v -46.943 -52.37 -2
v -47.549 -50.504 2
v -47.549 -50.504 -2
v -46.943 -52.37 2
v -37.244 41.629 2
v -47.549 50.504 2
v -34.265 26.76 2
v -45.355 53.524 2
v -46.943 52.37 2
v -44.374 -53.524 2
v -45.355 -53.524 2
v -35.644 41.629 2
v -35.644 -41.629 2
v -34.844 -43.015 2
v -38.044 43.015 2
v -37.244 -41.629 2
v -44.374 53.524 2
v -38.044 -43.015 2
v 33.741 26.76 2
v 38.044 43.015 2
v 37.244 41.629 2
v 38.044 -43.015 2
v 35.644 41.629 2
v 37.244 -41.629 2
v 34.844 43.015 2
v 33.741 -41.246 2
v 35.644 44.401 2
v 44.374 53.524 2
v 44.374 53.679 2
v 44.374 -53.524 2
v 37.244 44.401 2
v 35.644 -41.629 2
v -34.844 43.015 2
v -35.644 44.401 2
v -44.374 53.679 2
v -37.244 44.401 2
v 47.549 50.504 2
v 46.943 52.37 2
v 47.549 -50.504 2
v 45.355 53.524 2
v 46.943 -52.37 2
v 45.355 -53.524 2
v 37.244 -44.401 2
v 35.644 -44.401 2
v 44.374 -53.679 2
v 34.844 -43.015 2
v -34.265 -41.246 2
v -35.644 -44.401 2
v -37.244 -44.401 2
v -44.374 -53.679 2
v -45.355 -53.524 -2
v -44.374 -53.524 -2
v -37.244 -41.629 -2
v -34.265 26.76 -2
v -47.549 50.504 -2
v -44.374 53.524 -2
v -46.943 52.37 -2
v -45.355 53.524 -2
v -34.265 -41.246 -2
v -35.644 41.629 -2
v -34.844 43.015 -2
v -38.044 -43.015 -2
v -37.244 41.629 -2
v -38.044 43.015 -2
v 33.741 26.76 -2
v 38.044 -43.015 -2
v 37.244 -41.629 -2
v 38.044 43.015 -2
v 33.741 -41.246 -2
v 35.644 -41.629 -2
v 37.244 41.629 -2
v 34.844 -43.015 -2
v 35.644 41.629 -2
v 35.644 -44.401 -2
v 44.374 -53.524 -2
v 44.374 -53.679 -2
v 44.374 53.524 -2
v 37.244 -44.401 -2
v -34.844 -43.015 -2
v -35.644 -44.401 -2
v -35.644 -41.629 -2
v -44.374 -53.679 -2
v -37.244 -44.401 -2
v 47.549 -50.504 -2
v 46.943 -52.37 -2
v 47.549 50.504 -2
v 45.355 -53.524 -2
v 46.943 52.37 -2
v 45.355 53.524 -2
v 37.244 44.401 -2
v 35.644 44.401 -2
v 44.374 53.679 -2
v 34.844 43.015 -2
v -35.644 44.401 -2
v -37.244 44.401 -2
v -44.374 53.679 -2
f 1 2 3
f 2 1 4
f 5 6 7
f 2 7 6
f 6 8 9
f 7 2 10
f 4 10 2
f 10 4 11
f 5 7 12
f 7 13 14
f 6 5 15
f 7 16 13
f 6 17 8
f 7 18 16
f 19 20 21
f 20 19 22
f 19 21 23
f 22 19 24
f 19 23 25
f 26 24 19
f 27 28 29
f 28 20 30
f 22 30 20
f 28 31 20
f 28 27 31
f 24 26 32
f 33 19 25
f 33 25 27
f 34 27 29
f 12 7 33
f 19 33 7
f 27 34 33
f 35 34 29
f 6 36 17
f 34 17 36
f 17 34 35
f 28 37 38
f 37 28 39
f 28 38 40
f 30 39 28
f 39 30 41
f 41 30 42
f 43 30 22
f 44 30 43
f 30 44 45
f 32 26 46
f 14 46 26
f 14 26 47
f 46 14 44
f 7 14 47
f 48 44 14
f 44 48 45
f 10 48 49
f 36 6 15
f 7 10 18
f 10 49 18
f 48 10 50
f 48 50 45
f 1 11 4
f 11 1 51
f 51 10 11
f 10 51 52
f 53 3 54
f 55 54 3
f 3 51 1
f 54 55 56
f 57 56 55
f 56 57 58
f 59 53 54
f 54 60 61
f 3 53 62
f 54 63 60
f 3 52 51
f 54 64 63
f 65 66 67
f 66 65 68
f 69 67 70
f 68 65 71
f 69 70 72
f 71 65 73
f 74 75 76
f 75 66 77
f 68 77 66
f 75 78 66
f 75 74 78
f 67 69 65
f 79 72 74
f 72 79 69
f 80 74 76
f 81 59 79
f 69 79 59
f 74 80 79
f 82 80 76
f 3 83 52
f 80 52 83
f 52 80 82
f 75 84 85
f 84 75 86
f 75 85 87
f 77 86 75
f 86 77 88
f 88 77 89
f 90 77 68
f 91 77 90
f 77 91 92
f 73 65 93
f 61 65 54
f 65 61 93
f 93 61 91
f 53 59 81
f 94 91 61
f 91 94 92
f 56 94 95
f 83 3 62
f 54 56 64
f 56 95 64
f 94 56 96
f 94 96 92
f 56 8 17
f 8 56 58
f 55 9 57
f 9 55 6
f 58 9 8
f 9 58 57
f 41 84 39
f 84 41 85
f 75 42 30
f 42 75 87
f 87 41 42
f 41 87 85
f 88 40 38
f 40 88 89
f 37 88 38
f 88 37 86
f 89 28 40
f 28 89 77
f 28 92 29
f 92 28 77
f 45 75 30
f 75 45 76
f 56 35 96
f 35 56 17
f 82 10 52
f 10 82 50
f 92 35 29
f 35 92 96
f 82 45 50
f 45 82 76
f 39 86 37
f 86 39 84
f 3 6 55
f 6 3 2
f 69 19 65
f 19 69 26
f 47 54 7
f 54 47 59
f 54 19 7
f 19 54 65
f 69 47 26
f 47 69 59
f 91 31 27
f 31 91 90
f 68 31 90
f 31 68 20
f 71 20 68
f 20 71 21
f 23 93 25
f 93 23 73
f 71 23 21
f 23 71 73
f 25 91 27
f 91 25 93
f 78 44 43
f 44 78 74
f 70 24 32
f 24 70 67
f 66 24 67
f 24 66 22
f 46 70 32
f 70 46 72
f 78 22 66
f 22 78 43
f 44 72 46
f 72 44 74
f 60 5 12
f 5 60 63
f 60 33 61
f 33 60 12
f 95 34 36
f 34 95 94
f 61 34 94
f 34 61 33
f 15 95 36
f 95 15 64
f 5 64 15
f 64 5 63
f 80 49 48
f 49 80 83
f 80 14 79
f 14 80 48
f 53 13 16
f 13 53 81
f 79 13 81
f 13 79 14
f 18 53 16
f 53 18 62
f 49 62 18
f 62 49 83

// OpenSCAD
// file: data-access.scad
// Norm Nuts and Bolts - a OpenSCAD library
// Copyright (C) 2012  Johannes Kneer

// This program is free software: you can redistribute it and/or modify
// it under the terms of the GNU General Public License as published by
// the Free Software Foundation, either version 3 of the License, or
// (at your option) any later version.

// This program is distributed in the hope that it will be useful,
// but WITHOUT ANY WARRANTY; without even the implied warranty of
// MERCHANTABILITY or FITNESS FOR A PARTICULAR PURPOSE.  See the
// GNU General Public License for more details.

// You should have received a copy of the GNU General Public License
// along with this program.  If not, see <http://www.gnu.org/licenses/>.


// DATABASE ACCESS FUNCTIONS AND CONSTANTS



// == CONSTANTS ==

// screw table access keys
_NB_S_DESC            = 0;
_NB_S_FAMKEY			    = 1;
_NB_S_LENGTH          = 2;
_NB_S_NOTHREAD_LENGTH = 3;

_NB_F_DESC			      = 0;
_NB_F_OUTER_DIA       = 1;
_NB_F_INNER_DIA       = 2;
_NB_F_LEAD            = 3;
_NB_F_KEY             = 4;
_NB_F_KEY_DEPTH       = 5;
_NB_F_HEAD_HEIGHT     = 6;
_NB_F_HEAD_DIA        = 7;
_NB_F_NUT_KEY         = 8;
_NB_F_NUT_HEIGHT      = 9;
_NB_F_PITCH_FINE      = 10;
_NB_F_PITCH_MEDIUM    = 11;
_NB_F_PITCH_COARSE    = 12;


// == FUNCTIONS ==

// _get_screw("descriptor")   with descriptor = M8x25
//   find the line for a general object in the data matrix

function _get_screw(n) = data_screw[search([n], data_screw)[0]];
function _get_screw_fam(n) = data_screw_fam[search([_get_screw(n)[_NB_S_FAMKEY]], data_screw_fam)[0]];

function _get_fam(n) = data_screw_fam[search([n], data_screw_fam)[0]];


// _get_XXXXX("descriptor") functions
// find a single property in the database

function _get_desc(n)        = _get_screw(n)[_NB_S_DESC];
function _get_famkey(n)         = _get_screw(n)[_NB_S_FAMKEY];
function _get_length(n)      = _get_screw(n)[_NB_S_LENGTH];
function _get_nt_length(n)   = _get_screw(n)[_NB_S_NOTHREAD_LENGTH];

function _get_outer_dia(n)   = _get_screw_fam(n)[_NB_F_OUTER_DIA];
function _get_inner_dia(n)   = _get_screw_fam(n)[_NB_F_INNER_DIA];
function _get_lead(n)        = _get_screw_fam(n)[_NB_F_LEAD];
function _get_head_height(n) = _get_screw_fam(n)[_NB_F_HEAD_HEIGHT];
function _get_head_dia(n)    = _get_screw_fam(n)[_NB_F_HEAD_DIA];
function _get_nut_key(n)     = _get_screw_fam(n)[_NB_F_NUT_KEY];
function _get_nut_height(n)  = _get_screw_fam(n)[_NB_F_NUT_HEIGHT];
function _get_fine_pitch(n)  = _get_screw_fam(n)[_NB_F_PITCH_FINE];
function _get_medium_pitch(n)  = _get_screw_fam(n)[_NB_F_PITCH_MEDIUM];
function _get_coarse_pitch(n)  = _get_screw_fam(n)[_NB_F_PITCH_COARSE];
// main file
// Units: mm
use <MCAD/boxes.scad>
use <cyl_head_bolt.scad>

// PCB
board_width = 81.0987;
board_length = 93.358;
hole_offset_x = 4.105;
hole_offset_y = 3.664;
keypad_x = 66.506;
keypad_y_offset = 6.183;
keypad_x_offset = 7.034; // From the right

// Holders
module hole(h=13.1, ir=2.9, or=4.0) {
	translate([0, 0, 50]) hole_through(name="M3", l=1000);
}

// Cover
color([0, 1, 0, 0.5]) difference() {
	roundedBox([board_width + 14, board_length + 14, 4], radius=3.175, sidesonly=true);
	// Keypad hole
	translate([-((board_width - keypad_x) / 2) + keypad_x_offset, -((board_length - keypad_x) / 2) + keypad_y_offset, 0]) cube([keypad_x + 1.5, keypad_x + 1.5, 40], center=true);
	// Screw holes
	translate([board_width / 2 - hole_offset_x, board_length / 2 - hole_offset_y, 5/2-0.8]) hole();
	translate([board_width / 2 - hole_offset_x, -board_length / 2 + hole_offset_y, 5/2-0.8]) hole();
	translate([-board_width / 2 + hole_offset_x, board_length / 2 - hole_offset_y, 5/2-0.8]) hole();
	translate([-board_width / 2 + hole_offset_x, -board_length / 2 + hole_offset_y, 5/2-0.8]) hole();
}
